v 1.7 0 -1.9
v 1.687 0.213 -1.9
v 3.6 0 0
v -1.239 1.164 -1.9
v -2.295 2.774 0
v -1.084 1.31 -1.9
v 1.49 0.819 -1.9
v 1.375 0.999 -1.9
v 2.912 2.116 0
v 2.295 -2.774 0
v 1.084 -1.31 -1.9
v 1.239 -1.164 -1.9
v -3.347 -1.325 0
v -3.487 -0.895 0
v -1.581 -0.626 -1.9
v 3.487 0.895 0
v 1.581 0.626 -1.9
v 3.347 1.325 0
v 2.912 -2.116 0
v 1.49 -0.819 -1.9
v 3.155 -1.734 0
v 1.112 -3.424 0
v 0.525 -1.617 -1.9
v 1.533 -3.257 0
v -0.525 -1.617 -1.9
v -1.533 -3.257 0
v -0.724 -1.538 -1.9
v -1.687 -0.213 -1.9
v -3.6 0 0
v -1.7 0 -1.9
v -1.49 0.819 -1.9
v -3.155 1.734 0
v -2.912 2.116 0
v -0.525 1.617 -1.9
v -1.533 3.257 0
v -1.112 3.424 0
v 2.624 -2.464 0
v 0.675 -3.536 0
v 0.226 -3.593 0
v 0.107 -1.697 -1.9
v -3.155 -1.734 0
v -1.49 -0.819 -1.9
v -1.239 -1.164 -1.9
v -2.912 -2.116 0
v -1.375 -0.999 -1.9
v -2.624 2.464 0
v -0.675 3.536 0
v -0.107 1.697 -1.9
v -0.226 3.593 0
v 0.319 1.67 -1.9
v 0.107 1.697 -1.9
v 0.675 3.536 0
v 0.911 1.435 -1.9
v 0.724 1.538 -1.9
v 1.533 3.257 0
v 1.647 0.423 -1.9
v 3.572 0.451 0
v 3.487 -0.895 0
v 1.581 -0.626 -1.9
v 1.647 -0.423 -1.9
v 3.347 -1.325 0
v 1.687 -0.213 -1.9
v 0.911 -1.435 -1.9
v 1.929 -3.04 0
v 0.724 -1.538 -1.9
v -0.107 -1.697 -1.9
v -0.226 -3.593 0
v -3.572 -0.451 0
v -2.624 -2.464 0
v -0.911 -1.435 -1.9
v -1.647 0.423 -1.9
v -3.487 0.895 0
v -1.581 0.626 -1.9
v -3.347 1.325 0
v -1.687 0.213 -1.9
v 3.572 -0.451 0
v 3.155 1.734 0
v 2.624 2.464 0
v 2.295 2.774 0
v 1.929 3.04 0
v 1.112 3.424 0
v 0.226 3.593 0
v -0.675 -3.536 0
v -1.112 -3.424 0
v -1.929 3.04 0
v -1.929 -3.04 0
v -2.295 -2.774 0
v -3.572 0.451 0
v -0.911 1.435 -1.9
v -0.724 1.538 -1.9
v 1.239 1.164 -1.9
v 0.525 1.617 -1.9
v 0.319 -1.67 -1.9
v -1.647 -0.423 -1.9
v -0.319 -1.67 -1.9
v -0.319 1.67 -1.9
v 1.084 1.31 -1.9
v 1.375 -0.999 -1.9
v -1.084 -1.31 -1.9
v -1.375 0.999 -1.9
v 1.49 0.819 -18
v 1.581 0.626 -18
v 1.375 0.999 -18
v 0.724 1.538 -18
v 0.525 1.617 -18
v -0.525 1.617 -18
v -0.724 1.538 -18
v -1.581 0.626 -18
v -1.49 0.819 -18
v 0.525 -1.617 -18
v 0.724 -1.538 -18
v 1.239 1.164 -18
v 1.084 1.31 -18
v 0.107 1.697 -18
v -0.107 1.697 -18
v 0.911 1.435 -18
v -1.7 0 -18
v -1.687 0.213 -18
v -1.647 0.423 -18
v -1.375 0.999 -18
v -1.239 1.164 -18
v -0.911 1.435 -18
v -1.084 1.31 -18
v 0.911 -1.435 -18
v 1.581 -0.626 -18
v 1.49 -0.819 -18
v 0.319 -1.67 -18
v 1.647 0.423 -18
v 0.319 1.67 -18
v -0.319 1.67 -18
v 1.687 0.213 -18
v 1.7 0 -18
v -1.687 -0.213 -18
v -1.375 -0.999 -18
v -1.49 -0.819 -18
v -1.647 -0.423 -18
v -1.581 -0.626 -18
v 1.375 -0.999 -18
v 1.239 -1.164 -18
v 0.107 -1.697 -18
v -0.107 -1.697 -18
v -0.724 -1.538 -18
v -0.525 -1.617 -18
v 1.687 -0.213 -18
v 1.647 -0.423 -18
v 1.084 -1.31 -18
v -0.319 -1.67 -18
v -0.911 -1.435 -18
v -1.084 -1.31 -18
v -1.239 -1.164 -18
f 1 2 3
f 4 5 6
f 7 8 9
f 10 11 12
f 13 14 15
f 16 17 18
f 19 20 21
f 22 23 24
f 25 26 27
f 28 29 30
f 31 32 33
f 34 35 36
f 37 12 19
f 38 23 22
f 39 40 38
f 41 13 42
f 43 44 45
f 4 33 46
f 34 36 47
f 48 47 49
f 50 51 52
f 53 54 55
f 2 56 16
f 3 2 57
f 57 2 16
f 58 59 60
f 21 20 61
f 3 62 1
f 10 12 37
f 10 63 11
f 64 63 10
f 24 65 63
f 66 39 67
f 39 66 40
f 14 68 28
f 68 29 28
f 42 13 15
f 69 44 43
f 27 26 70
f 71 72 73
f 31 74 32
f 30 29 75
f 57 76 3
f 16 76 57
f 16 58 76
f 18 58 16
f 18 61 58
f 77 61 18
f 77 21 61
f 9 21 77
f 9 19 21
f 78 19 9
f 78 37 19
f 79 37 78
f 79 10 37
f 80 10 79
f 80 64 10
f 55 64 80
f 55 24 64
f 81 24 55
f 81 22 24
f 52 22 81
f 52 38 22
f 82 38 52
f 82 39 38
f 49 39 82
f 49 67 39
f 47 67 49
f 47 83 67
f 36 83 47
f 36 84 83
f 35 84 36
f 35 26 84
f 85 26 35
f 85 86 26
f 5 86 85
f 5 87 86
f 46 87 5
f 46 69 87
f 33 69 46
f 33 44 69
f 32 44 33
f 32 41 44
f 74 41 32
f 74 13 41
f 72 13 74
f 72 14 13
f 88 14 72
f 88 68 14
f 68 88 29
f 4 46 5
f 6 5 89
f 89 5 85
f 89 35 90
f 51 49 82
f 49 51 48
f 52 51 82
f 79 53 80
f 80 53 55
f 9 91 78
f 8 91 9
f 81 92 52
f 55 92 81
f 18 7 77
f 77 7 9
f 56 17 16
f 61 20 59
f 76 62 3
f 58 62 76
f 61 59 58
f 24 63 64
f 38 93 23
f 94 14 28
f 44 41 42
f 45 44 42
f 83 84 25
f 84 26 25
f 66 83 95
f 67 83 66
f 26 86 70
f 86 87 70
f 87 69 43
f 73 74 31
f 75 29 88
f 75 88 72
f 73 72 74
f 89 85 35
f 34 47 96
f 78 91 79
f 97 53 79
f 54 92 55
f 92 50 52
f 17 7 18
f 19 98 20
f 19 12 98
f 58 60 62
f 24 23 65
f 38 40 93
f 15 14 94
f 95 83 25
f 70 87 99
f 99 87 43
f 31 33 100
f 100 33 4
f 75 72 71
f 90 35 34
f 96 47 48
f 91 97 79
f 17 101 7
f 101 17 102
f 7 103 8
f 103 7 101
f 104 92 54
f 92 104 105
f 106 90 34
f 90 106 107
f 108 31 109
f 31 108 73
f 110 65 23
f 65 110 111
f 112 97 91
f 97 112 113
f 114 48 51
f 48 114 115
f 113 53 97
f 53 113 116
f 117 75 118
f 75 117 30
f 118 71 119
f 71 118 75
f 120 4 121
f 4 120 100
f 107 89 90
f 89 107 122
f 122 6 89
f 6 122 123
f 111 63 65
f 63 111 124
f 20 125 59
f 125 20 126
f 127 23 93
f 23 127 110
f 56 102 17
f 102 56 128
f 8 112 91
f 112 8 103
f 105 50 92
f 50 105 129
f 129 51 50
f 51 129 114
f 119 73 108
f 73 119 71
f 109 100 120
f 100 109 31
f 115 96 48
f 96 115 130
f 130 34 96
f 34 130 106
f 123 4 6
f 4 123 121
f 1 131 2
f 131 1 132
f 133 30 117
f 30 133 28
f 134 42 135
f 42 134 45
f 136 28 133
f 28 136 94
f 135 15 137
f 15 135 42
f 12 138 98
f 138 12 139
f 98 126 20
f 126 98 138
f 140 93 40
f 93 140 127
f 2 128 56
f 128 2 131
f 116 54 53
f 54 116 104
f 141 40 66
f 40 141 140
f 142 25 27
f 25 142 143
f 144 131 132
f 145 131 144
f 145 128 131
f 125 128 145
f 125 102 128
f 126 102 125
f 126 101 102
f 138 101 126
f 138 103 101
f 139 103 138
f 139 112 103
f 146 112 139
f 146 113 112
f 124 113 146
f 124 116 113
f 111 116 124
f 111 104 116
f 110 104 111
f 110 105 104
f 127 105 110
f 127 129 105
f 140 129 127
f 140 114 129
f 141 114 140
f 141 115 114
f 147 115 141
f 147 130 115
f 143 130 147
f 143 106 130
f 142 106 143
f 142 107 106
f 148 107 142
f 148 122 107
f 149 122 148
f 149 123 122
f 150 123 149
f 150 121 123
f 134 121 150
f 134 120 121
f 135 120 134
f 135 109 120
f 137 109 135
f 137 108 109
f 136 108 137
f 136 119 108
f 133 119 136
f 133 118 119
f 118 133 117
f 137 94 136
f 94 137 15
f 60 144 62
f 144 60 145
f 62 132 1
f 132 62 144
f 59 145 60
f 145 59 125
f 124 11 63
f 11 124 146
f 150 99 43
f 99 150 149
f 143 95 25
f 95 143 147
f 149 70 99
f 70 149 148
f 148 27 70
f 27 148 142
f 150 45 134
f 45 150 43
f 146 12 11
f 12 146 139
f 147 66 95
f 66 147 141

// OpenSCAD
$fn = 50;


difference() {
	union() {
		translate(v = [0, 0, -1.9000000000]) {
			rotate(a = [0, 0, 0]) {
				cylinder(h = 1.9000000000, r1 = 1.7000000000, r2 = 3.6000000000);
			}
		}
		translate(v = [0, 0, -18]) {
			rotate(a = [0, 0, 0]) {
				cylinder(h = 18, r = 1.7000000000);
			}
		}
	}
	union();
}
